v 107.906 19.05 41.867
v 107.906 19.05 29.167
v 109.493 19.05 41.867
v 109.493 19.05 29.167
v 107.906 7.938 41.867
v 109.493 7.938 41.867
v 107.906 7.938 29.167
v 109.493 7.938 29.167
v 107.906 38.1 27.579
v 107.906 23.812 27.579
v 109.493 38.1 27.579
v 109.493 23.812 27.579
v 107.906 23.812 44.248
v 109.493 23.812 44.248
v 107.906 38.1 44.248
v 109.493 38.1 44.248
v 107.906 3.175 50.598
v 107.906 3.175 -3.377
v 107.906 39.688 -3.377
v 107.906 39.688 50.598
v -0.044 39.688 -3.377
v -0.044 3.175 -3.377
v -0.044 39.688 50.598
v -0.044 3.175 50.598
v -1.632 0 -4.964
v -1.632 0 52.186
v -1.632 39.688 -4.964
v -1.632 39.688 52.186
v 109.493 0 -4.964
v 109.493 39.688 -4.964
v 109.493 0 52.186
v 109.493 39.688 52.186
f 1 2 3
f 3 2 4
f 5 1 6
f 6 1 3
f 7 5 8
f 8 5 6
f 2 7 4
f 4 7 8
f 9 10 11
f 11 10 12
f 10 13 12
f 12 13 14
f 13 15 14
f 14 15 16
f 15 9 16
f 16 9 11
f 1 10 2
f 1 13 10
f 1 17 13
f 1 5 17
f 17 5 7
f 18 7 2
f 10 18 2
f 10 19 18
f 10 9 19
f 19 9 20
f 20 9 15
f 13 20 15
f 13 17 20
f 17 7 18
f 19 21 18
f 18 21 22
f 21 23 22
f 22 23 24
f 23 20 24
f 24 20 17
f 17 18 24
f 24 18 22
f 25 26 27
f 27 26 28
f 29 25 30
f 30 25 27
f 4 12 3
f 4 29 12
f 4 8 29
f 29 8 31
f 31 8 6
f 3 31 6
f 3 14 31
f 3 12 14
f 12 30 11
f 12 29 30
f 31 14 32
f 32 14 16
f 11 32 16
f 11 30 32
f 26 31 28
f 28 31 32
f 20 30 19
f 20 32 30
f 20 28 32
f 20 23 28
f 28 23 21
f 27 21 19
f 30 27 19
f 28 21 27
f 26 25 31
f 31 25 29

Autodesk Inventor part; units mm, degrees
ref_plane "YZ Plane" through (0, 0, 0) normal (1, 0, 0) x (0, 1, 0)
ref_plane "XZ Plane" through (0, 0, 0) normal (0, 1, 0) x (-1, 0, 0)
ref_plane "XY Plane" through (0, 0, 0) normal (0, 0, 1) x (1, 0, 0)
sketch "Sketch1" plane through (0, 0, 0) normal (0, 1, 0) x (-1, 0, 0)
  line L0 (1.6318, 52.1856) -> (-109.4932, 52.1856)
  line L1 (-109.4932, 52.1856) -> (-109.4932, -4.9644)
  line L2 (-109.4932, -4.9644) -> (1.6318, -4.9644)
  line L3 (1.6318, -4.9644) -> (1.6318, 52.1856)
  point P0 (0, 0)
extrude "Extrusion1" add sketch "Sketch1" along normal blind 39.6875
sketch "Sketch2" plane through (0, 39.6875, 0) normal (0, 1, 0) x (1, 0, 0)
  line L0 (-0.0443, -50.5981) -> (107.9057, -50.5981)
  line L1 (107.9057, -50.5981) -> (107.9057, 3.3769)
  line L2 (107.9057, 3.3769) -> (-0.0443, 3.3769)
  line L3 (-0.0443, 3.3769) -> (-0.0443, -50.5981)
  line L4 (-1.6318, -52.1856) -> (109.4932, -52.1856) projected
  line L5 (109.4932, 4.9644) -> (-1.6318, 4.9644) projected
  line L6 (-1.6318, 4.9644) -> (-1.6318, -52.1856) projected
  line L7 (109.4932, -52.1856) -> (109.4932, 4.9644) projected
  point P0 (0, 0)
  dimension "d8" = 1.5875
  dimension "d9" = 1.5875
  dimension "d10" = 1.5875
  dimension "d11" = 1.5875
extrude "Extrusion2" cut sketch "Sketch2" against normal blind 36.5125 contours L3 L2 L1 L0
sketch "Sketch3" plane through (109.4932, 0, 52.1856) normal (1, 0, 0) x (0, 0, -1)
  line L0 (10.3187, 19.05) -> (23.0187, 19.05)
  line L1 (23.0187, 19.05) -> (23.0187, 7.9375)
  line L2 (23.0187, 7.9375) -> (10.3187, 7.9375)
  line L3 (10.3187, 7.9375) -> (10.3187, 19.05)
  line L4 (0, 0) -> (57.15, 0) projected
  line L5 (0, 0) -> (0, 39.6875) projected
  line L6 (7.9375, 38.1) -> (24.6062, 38.1)
  line L7 (24.6062, 38.1) -> (24.6062, 23.8125)
  line L8 (24.6062, 23.8125) -> (7.9375, 23.8125)
  line L9 (7.9375, 23.8125) -> (7.9375, 38.1)
  line L10 (0, 39.6875) -> (57.15, 39.6875) projected
  line L11 (55.5625, 3.175) -> (1.5875, 3.175) projected
  line L12 (1.5875, 39.6875) -> (1.5875, 3.175) projected
  point P0 (52.1856, 0)
  point P1 (55.5625, 39.6875)
  point P2 (1.5875, 0)
  dimension "d14" = 12.7
  dimension "d15" = 11.1125
  dimension "d18" = 16.6687
  dimension "d19" = 14.2875
  dimension "d23" = 4.7625
  dimension "d28" = 4.7625
  dimension "d29" = 8.7312
  dimension "d30" = 6.35
  dimension "d34" = 1.5875
extrude "Extrusion3" cut sketch "Sketch3" against normal up to surface (1.5875 mm away)
properties part number "SD_BaseStation_Box"
